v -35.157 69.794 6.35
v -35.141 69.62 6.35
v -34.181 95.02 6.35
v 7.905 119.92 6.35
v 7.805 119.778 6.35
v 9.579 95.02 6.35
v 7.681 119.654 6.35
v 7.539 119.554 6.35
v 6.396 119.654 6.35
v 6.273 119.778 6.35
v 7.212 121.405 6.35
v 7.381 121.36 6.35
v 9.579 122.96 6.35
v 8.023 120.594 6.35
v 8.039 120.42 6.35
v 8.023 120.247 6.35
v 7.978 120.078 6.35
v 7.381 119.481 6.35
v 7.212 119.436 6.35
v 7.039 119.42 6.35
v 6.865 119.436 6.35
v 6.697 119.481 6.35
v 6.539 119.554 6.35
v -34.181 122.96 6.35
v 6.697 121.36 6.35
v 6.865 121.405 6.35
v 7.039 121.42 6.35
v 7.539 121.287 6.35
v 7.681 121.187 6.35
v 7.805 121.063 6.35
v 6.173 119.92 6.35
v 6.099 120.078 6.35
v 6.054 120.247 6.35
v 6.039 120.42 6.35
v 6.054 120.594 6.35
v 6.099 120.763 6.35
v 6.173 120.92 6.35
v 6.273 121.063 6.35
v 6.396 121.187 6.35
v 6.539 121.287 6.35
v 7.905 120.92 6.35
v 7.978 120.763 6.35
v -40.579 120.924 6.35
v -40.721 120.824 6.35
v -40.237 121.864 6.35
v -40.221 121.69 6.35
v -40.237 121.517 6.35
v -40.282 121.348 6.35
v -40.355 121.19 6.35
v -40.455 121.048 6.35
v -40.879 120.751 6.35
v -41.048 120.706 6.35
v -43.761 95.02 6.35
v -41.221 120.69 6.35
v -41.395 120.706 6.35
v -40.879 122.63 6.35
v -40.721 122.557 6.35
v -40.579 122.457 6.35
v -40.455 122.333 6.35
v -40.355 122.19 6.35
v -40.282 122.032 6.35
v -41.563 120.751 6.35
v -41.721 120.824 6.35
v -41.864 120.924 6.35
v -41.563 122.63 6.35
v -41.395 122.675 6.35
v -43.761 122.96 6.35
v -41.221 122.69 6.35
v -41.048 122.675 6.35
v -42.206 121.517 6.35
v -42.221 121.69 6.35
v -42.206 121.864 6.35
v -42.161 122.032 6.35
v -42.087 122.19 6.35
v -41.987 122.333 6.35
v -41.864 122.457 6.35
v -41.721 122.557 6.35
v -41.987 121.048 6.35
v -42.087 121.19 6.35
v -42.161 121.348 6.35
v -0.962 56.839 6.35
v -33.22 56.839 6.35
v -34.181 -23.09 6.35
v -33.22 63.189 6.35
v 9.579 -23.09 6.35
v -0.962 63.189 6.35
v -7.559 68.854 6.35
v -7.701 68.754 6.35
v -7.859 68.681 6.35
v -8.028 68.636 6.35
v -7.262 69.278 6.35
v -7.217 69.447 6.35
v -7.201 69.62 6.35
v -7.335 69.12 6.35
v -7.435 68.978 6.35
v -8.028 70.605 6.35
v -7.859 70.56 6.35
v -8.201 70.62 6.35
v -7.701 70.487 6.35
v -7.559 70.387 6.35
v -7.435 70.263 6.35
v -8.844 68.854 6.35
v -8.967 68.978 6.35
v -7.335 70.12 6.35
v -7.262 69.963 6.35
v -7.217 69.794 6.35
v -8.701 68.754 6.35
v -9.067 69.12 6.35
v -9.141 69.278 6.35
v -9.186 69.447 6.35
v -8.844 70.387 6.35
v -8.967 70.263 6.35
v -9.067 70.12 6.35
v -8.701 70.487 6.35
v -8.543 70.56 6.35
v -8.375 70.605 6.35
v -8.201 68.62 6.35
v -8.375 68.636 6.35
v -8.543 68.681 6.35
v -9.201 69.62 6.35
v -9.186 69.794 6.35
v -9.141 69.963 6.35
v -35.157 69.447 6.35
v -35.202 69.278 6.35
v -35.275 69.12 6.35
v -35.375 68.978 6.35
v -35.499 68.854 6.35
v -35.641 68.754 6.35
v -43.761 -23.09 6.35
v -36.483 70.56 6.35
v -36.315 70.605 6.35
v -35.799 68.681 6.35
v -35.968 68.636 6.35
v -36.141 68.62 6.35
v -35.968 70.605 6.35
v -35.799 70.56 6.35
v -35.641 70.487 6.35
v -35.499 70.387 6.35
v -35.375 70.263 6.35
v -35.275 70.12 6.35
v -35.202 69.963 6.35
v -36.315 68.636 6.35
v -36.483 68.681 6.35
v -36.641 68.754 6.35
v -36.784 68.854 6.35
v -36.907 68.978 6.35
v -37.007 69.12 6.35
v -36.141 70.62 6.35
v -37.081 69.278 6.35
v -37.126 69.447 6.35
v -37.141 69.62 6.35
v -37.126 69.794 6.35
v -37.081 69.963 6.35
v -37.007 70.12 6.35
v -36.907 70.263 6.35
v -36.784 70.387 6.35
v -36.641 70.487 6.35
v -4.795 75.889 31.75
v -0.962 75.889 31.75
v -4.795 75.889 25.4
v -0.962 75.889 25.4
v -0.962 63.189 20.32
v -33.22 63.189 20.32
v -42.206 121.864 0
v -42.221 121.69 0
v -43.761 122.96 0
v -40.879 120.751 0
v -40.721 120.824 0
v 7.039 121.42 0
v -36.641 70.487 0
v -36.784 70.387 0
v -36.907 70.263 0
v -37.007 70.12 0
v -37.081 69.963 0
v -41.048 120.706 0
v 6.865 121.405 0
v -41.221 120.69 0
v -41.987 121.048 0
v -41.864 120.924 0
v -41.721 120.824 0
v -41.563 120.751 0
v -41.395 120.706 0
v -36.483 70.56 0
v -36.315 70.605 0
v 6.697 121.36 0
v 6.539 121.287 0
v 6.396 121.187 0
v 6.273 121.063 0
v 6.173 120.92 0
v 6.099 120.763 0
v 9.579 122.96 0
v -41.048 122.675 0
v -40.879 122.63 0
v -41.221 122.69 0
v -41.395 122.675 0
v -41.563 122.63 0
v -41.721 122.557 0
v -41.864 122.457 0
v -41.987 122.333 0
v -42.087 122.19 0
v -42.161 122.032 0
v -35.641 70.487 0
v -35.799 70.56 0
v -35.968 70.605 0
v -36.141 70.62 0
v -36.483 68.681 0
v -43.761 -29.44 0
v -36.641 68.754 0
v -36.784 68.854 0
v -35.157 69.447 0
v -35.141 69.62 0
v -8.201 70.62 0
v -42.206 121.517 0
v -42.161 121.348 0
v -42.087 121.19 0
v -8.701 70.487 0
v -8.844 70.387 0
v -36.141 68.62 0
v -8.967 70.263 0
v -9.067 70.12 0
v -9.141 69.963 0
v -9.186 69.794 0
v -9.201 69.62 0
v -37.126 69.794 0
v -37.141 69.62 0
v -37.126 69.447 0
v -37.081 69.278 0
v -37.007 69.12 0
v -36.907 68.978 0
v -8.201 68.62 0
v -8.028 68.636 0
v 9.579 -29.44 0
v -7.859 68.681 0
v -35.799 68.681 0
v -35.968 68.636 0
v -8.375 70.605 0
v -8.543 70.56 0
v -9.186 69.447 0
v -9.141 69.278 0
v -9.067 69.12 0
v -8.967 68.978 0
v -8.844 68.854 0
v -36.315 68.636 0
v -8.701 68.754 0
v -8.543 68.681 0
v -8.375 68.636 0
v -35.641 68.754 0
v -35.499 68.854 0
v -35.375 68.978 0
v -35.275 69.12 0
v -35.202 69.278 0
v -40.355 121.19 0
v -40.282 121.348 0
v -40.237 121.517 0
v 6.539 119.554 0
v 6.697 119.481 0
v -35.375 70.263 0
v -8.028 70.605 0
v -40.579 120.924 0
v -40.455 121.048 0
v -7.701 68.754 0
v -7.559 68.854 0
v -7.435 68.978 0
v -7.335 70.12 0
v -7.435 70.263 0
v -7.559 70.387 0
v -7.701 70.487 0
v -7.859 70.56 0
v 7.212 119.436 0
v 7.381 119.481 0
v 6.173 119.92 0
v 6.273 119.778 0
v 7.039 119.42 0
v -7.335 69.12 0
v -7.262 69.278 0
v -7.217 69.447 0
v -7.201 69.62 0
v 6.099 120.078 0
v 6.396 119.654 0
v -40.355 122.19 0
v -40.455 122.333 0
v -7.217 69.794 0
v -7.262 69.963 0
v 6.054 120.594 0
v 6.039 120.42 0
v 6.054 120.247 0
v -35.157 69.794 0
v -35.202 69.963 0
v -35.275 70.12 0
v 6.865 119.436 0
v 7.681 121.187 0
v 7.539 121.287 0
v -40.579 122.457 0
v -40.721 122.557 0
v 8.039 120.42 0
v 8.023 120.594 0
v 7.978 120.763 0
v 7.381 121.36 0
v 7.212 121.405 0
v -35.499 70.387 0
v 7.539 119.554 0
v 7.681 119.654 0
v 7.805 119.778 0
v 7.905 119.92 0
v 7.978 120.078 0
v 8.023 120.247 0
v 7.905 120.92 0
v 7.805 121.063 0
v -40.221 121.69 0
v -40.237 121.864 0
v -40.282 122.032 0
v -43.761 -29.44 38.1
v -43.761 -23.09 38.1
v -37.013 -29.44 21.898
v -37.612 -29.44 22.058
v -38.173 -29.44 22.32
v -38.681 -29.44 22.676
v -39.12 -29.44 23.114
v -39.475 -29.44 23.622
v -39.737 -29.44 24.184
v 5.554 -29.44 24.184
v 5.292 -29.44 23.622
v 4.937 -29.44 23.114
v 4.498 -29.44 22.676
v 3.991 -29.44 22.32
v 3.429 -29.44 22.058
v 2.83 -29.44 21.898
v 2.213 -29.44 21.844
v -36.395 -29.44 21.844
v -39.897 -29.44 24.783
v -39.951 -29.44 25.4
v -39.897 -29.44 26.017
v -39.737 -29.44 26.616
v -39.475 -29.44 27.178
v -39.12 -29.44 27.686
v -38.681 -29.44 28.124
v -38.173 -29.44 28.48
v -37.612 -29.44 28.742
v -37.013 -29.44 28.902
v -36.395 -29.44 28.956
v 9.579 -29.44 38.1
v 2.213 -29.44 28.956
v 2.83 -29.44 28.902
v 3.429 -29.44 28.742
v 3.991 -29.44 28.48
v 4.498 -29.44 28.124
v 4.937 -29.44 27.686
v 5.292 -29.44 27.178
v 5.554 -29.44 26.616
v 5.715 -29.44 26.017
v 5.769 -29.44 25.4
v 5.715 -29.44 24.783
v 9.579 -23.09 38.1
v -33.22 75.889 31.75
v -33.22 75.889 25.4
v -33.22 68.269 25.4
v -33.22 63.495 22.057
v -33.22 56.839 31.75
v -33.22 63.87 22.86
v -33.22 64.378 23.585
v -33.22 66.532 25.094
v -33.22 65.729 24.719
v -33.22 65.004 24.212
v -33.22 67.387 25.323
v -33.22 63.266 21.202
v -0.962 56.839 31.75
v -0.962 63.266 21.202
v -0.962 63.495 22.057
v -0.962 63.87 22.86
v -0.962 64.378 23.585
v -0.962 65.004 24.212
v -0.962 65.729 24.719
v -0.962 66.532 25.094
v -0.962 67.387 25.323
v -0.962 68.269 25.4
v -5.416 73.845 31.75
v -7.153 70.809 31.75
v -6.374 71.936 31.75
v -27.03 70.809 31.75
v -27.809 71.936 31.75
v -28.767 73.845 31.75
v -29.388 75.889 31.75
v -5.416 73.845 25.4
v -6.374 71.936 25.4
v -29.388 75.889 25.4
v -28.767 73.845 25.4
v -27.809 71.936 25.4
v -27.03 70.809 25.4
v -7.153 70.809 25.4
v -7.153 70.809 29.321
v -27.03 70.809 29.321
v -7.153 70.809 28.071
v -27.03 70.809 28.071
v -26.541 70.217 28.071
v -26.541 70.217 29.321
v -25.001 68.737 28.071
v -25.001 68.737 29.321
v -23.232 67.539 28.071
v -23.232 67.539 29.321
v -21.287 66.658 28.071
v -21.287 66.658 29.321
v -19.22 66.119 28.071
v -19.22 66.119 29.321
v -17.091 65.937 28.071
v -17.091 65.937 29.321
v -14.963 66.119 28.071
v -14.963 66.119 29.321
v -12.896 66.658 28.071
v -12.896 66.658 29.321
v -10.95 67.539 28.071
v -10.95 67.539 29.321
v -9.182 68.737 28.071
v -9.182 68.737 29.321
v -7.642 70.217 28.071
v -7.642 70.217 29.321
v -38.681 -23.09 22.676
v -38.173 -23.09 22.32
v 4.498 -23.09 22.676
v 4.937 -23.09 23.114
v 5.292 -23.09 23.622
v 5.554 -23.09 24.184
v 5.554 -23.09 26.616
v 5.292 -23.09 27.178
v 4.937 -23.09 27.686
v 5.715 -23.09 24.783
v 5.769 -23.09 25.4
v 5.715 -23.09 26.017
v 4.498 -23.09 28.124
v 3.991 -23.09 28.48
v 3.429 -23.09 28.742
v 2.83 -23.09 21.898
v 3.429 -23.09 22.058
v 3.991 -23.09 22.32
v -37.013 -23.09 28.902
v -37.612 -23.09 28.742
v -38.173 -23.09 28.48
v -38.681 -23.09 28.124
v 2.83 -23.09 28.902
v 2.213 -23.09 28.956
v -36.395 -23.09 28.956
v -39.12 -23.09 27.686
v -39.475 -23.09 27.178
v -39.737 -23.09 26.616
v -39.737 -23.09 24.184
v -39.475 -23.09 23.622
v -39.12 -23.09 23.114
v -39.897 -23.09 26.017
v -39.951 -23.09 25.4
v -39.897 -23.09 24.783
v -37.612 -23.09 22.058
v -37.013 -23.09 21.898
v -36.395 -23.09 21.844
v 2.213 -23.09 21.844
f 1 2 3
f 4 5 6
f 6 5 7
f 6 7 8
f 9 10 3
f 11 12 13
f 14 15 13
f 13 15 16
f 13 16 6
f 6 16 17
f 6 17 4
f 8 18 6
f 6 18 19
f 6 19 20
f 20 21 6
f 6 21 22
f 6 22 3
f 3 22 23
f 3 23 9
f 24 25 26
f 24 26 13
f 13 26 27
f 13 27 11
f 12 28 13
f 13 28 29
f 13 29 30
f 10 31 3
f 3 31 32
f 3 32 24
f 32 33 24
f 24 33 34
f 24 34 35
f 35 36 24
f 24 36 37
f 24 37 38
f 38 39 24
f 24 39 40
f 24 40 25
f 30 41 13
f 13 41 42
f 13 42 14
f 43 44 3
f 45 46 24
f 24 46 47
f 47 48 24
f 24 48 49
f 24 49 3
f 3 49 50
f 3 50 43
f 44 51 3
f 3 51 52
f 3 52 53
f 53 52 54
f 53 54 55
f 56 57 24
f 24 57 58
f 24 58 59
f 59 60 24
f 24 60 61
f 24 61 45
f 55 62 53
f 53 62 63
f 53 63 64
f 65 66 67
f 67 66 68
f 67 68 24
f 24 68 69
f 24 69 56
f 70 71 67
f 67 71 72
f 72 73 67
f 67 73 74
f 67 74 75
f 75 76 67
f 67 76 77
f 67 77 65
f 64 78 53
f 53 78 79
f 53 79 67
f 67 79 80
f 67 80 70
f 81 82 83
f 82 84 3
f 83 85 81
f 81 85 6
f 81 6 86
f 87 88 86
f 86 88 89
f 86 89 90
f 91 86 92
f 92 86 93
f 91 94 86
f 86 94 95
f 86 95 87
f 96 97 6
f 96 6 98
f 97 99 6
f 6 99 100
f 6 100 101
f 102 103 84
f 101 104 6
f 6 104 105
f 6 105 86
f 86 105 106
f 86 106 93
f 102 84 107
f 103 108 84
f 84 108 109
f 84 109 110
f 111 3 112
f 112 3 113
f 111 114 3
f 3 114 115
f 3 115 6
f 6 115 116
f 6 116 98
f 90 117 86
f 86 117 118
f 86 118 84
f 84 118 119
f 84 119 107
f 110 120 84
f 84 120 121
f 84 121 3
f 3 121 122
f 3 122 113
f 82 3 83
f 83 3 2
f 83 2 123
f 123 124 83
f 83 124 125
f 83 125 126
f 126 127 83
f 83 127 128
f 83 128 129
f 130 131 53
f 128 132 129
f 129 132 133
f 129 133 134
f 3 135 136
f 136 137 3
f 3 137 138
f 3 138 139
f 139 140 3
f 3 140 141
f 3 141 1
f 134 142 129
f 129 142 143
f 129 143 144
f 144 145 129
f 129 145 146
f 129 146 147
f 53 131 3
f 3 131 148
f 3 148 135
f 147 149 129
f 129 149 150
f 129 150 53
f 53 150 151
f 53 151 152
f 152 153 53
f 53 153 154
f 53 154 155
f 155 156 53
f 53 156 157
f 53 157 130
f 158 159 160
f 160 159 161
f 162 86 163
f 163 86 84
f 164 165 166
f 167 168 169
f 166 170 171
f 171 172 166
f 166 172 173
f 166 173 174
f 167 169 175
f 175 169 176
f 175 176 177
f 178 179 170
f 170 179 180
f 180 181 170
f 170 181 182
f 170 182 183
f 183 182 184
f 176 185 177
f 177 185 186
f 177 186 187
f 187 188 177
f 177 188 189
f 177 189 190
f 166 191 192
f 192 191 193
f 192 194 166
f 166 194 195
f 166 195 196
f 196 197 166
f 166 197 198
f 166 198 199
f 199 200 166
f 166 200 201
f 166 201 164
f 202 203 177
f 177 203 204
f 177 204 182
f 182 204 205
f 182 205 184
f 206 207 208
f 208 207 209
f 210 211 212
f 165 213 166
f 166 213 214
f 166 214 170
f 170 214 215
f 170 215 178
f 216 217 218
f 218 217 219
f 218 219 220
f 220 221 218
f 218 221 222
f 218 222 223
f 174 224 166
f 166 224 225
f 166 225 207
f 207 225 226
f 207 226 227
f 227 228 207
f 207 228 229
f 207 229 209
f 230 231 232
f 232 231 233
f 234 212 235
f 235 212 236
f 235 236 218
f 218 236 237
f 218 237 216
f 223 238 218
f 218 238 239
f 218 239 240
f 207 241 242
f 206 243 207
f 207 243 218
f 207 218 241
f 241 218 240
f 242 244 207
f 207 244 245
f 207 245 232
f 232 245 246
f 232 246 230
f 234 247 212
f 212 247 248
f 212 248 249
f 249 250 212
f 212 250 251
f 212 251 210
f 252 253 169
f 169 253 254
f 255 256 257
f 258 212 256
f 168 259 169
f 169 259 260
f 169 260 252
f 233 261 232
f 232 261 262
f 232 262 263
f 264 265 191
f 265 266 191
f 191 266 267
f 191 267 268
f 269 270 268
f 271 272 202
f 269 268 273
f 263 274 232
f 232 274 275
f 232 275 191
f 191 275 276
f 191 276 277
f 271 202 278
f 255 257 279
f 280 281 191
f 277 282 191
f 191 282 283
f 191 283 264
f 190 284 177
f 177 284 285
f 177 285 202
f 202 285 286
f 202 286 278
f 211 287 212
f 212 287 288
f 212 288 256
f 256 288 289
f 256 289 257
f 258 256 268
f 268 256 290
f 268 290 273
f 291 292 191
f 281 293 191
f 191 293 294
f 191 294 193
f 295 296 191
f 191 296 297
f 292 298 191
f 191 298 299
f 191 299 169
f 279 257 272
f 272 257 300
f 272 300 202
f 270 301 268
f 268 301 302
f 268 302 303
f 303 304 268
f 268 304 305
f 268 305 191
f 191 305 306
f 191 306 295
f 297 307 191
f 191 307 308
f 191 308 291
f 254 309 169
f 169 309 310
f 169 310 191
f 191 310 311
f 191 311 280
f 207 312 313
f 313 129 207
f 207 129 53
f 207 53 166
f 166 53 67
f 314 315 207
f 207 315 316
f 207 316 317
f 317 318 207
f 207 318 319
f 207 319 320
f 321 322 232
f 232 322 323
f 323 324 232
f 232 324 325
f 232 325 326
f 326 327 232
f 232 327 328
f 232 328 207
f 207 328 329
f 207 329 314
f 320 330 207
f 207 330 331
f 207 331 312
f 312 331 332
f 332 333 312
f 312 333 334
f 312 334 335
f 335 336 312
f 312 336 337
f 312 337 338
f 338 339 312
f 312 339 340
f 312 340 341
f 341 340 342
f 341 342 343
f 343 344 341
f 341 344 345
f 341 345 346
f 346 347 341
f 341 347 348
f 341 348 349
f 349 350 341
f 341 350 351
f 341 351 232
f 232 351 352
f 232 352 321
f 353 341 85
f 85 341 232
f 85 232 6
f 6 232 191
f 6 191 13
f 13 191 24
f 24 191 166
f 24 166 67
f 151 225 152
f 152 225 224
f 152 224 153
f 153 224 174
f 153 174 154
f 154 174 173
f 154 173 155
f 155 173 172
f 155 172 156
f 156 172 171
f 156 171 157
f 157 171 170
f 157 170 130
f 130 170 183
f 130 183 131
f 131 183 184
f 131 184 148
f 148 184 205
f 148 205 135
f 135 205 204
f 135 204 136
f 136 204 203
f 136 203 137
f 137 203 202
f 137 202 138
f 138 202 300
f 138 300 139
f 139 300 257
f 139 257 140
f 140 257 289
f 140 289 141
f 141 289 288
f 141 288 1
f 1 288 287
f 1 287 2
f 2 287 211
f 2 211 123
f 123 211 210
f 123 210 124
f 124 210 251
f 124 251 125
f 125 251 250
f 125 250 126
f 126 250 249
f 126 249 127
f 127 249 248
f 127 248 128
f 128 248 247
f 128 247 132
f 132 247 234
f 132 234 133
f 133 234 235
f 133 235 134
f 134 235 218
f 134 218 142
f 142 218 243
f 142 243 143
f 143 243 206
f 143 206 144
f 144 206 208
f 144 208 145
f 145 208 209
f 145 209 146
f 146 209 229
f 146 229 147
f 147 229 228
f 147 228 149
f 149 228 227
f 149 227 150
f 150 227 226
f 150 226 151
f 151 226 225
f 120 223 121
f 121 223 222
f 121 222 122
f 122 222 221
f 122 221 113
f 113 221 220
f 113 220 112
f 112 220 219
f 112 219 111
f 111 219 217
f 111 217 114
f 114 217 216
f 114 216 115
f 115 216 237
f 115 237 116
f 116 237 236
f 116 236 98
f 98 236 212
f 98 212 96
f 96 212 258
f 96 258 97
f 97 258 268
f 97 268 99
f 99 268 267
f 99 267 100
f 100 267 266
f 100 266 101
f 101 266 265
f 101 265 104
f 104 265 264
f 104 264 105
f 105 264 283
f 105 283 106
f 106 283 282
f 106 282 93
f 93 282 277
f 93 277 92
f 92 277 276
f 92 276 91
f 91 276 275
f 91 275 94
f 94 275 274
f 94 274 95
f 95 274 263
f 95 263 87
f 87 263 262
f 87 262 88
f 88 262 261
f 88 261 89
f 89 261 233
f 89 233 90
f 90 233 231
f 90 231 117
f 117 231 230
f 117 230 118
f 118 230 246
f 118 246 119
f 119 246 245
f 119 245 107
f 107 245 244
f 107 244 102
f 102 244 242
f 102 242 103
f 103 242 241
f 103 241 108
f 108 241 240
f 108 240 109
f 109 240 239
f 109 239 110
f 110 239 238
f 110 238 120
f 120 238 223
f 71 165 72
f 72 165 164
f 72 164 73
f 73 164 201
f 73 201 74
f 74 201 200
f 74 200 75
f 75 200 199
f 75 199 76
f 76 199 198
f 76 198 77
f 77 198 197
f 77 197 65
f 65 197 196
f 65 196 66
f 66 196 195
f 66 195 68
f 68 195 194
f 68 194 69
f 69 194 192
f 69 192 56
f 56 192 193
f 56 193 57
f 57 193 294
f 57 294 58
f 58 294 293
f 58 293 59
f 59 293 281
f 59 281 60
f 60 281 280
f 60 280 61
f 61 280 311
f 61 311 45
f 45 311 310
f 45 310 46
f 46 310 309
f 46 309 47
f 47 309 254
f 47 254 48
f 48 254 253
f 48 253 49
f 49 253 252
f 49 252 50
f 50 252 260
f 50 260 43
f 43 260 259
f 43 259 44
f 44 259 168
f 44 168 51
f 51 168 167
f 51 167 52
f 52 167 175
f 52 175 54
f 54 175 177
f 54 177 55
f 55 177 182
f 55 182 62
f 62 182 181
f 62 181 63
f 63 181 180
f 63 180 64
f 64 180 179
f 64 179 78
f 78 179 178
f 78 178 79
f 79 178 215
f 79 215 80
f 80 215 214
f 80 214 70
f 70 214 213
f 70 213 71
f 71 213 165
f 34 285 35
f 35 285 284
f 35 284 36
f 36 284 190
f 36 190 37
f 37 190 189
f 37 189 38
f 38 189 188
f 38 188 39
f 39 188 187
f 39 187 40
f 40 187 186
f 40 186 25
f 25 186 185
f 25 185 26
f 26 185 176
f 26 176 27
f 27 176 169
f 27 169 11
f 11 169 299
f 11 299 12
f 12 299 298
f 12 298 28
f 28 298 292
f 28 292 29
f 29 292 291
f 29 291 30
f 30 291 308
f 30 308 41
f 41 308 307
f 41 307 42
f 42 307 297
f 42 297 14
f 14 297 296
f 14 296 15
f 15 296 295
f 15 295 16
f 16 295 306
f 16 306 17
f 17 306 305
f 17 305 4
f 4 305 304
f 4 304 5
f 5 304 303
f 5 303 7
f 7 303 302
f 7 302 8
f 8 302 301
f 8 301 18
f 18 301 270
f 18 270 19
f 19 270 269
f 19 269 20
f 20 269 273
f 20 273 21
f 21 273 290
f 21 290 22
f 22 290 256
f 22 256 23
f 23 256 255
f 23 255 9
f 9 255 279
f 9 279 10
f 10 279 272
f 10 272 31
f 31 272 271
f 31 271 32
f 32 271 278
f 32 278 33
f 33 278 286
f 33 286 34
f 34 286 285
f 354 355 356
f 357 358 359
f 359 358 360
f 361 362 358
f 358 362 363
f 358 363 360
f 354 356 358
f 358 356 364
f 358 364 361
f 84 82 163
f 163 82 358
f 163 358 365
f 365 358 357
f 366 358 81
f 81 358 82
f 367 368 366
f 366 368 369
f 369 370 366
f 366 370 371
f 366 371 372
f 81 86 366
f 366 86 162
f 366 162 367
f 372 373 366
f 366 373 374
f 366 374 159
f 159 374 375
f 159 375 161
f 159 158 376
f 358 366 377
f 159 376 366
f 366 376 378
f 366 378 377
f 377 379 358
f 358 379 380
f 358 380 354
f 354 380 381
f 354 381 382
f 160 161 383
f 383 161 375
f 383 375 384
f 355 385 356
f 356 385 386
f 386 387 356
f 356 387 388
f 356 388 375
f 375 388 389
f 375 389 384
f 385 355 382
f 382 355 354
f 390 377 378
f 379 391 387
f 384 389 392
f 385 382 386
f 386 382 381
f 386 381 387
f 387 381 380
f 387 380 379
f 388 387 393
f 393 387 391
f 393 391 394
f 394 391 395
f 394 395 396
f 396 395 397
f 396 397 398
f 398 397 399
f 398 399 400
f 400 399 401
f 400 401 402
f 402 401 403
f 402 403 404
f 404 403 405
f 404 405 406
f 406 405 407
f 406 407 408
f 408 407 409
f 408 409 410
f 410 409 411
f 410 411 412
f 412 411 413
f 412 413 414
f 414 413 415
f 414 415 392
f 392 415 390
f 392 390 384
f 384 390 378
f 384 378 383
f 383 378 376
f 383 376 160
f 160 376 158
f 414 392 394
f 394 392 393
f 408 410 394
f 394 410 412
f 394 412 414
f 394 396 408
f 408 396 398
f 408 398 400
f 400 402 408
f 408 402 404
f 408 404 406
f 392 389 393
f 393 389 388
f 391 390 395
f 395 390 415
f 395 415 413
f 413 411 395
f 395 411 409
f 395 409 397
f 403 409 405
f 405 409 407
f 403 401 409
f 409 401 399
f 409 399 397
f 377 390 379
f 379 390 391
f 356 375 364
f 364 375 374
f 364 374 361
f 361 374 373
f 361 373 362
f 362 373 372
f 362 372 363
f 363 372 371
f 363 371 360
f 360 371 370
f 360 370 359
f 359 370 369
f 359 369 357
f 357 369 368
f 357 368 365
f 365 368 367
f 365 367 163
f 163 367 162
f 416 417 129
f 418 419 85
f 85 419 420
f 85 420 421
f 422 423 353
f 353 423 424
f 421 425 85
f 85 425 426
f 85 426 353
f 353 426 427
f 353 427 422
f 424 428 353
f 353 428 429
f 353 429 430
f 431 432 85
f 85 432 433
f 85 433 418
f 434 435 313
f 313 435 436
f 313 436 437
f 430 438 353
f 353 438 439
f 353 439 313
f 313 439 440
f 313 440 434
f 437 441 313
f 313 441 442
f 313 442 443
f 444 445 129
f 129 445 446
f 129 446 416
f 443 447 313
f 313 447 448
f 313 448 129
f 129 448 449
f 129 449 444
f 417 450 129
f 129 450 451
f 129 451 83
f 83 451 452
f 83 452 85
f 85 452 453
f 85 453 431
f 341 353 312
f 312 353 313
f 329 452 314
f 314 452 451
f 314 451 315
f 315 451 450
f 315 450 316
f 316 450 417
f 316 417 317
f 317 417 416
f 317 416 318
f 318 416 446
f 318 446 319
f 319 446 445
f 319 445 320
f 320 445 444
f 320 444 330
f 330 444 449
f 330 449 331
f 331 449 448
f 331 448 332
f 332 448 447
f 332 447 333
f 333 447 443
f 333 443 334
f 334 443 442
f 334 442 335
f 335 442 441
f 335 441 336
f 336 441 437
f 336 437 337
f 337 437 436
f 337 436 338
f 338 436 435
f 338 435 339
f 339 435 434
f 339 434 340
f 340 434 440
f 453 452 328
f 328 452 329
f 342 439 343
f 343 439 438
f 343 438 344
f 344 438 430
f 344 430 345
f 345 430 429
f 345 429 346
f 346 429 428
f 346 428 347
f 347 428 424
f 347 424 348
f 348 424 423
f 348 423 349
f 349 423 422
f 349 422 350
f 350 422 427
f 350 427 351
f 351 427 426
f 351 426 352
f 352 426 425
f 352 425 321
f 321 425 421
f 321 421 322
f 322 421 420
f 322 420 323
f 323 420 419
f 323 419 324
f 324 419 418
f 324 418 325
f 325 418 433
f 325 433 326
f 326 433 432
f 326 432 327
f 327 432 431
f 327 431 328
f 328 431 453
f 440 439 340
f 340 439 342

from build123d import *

# Parameters (mm, degrees)
SKETCH1_W           = 53.34
SKETCH1_H           = 152.4
SKETCH1_R           = 1
BOSS_EXTRUDE1_DEPTH = 6.35
SKETCH2_W           = 32.258
SKETCH2_H           = 6.35
BOSS_EXTRUDE2_DEPTH = 31.75
SKETCH3_W           = 32.258
SKETCH3_H           = 6.35
BOSS_EXTRUDE3_DEPTH = 12.7
CUT_EXTRUDE1_REACH  = 136.322
SKETCH4_R           = 12.573
SKETCH5_W           = 32.258
SKETCH5_H           = 2.671239047
SKETCH5_H_2         = 2.428760953
BOSS_EXTRUDE4_DEPTH = 7.62
FILLET1_R           = 5.08
SKETCH6_W           = 53.34
SKETCH6_H           = 6.35
BOSS_EXTRUDE5_DEPTH = 31.75
CUT_EXTRUDE3_REACH  = 159.154


with BuildPart() as part:
    # Sketch1 → Boss-Extrude1 (new body)
    with BuildSketch(Plane.XY):
        with Locations((-17.091445783, 46.760481928)):
            Rectangle(SKETCH1_W, SKETCH1_H)
        with Locations((-36.141445783, 69.620481928)):
            Circle(SKETCH1_R, mode=Mode.SUBTRACT)
        with Locations((-8.201445783, 69.620481928)):
            Circle(SKETCH1_R, mode=Mode.SUBTRACT)
        with Locations((-41.221445783, 121.690481928)):
            Circle(SKETCH1_R, mode=Mode.SUBTRACT)
        with Locations((7.038554217, 120.420481928)):
            Circle(SKETCH1_R, mode=Mode.SUBTRACT)
    extrude(amount=BOSS_EXTRUDE1_DEPTH)

    # Sketch2 → Boss-Extrude2 (add)
    with BuildSketch(Plane.XY):
        with Locations((-17.091445783, 60.014063864)):
            Rectangle(SKETCH2_W, SKETCH2_H)
    extrude(amount=BOSS_EXTRUDE2_DEPTH)

    # Sketch3 → Boss-Extrude3 (add)
    with BuildSketch(Plane(origin=(0, 63.189063864, 0), x_dir=(1, 0, 0), z_dir=(0, 1, 0))):
        with Locations((-17.091445783, -28.575)):
            Rectangle(SKETCH3_W, SKETCH3_H)
    extrude(amount=BOSS_EXTRUDE3_DEPTH)

    # Sketch4 → Cut-Extrude1 (cut, up to next)
    with BuildSketch(Plane.XY.offset(31.75), mode=Mode.PRIVATE) as cut_extrude1_sk1:
        with Locations((-17.091445783, 78.510481928)):
            Circle(SKETCH4_R)
    cut_extrude1_tool1 = extrude(cut_extrude1_sk1.sketch, amount=-CUT_EXTRUDE1_REACH, mode=Mode.PRIVATE) & part.part
    add(cut_extrude1_tool1.solids().sort_by_distance((-17.091446, 78.510482, 31.75))[0], mode=Mode.SUBTRACT)

    # Sketch5 → Boss-Extrude4 (add)
    with BuildSketch(Plane(origin=(0, 63.189063864, 0), x_dir=(1, 0, 0), z_dir=(0, 1, 0))):
        with Locations((-17.091445783, -26.735619524)):
            Rectangle(SKETCH5_W, SKETCH5_H)
        with Locations((-17.091445783, -30.535619524)):
            Rectangle(SKETCH5_W, SKETCH5_H_2)
    extrude(amount=BOSS_EXTRUDE4_DEPTH)

    # Fillet1
    fillet1_edges = [part.edges().sort_by_distance(p)[0] for p in [
        (-17.091445783, 63.189063864, 25.4),
    ]]
    fillet(fillet1_edges, radius=FILLET1_R)

    # Sketch6 → Boss-Extrude5 (add)
    with BuildSketch(Plane.XY.offset(6.35)):
        with Locations((-17.091445783, -26.264518072)):
            Rectangle(SKETCH6_W, SKETCH6_H)
    extrude(amount=BOSS_EXTRUDE5_DEPTH)

    # Sketch7 → Cut-Extrude3 (cut, up to next)
    with BuildSketch(Plane(origin=(0, -23.089518072, 0), x_dir=(1, 0, 0), z_dir=(0, 1, 0)), mode=Mode.PRIVATE) as cut_extrude3_sk1:
        with BuildLine():
            Line((-36.395445783, -21.844), (2.212554217, -21.844))
            ThreePointArc((2.212554217, -21.844), (5.768554217, -25.4), (2.212554217, -28.956))
            Line((2.212554217, -28.956), (-36.395445783, -28.956))
            ThreePointArc((-36.395445783, -28.956), (-39.951445783, -25.4), (-36.395445783, -21.844))
        make_face()
    cut_extrude3_tool1 = extrude(cut_extrude3_sk1.sketch, amount=-CUT_EXTRUDE3_REACH, mode=Mode.PRIVATE) & part.part
    add(cut_extrude3_tool1.solids().sort_by_distance((-17.091446, -23.089518, 25.4))[0], mode=Mode.SUBTRACT)


solid = part.part
